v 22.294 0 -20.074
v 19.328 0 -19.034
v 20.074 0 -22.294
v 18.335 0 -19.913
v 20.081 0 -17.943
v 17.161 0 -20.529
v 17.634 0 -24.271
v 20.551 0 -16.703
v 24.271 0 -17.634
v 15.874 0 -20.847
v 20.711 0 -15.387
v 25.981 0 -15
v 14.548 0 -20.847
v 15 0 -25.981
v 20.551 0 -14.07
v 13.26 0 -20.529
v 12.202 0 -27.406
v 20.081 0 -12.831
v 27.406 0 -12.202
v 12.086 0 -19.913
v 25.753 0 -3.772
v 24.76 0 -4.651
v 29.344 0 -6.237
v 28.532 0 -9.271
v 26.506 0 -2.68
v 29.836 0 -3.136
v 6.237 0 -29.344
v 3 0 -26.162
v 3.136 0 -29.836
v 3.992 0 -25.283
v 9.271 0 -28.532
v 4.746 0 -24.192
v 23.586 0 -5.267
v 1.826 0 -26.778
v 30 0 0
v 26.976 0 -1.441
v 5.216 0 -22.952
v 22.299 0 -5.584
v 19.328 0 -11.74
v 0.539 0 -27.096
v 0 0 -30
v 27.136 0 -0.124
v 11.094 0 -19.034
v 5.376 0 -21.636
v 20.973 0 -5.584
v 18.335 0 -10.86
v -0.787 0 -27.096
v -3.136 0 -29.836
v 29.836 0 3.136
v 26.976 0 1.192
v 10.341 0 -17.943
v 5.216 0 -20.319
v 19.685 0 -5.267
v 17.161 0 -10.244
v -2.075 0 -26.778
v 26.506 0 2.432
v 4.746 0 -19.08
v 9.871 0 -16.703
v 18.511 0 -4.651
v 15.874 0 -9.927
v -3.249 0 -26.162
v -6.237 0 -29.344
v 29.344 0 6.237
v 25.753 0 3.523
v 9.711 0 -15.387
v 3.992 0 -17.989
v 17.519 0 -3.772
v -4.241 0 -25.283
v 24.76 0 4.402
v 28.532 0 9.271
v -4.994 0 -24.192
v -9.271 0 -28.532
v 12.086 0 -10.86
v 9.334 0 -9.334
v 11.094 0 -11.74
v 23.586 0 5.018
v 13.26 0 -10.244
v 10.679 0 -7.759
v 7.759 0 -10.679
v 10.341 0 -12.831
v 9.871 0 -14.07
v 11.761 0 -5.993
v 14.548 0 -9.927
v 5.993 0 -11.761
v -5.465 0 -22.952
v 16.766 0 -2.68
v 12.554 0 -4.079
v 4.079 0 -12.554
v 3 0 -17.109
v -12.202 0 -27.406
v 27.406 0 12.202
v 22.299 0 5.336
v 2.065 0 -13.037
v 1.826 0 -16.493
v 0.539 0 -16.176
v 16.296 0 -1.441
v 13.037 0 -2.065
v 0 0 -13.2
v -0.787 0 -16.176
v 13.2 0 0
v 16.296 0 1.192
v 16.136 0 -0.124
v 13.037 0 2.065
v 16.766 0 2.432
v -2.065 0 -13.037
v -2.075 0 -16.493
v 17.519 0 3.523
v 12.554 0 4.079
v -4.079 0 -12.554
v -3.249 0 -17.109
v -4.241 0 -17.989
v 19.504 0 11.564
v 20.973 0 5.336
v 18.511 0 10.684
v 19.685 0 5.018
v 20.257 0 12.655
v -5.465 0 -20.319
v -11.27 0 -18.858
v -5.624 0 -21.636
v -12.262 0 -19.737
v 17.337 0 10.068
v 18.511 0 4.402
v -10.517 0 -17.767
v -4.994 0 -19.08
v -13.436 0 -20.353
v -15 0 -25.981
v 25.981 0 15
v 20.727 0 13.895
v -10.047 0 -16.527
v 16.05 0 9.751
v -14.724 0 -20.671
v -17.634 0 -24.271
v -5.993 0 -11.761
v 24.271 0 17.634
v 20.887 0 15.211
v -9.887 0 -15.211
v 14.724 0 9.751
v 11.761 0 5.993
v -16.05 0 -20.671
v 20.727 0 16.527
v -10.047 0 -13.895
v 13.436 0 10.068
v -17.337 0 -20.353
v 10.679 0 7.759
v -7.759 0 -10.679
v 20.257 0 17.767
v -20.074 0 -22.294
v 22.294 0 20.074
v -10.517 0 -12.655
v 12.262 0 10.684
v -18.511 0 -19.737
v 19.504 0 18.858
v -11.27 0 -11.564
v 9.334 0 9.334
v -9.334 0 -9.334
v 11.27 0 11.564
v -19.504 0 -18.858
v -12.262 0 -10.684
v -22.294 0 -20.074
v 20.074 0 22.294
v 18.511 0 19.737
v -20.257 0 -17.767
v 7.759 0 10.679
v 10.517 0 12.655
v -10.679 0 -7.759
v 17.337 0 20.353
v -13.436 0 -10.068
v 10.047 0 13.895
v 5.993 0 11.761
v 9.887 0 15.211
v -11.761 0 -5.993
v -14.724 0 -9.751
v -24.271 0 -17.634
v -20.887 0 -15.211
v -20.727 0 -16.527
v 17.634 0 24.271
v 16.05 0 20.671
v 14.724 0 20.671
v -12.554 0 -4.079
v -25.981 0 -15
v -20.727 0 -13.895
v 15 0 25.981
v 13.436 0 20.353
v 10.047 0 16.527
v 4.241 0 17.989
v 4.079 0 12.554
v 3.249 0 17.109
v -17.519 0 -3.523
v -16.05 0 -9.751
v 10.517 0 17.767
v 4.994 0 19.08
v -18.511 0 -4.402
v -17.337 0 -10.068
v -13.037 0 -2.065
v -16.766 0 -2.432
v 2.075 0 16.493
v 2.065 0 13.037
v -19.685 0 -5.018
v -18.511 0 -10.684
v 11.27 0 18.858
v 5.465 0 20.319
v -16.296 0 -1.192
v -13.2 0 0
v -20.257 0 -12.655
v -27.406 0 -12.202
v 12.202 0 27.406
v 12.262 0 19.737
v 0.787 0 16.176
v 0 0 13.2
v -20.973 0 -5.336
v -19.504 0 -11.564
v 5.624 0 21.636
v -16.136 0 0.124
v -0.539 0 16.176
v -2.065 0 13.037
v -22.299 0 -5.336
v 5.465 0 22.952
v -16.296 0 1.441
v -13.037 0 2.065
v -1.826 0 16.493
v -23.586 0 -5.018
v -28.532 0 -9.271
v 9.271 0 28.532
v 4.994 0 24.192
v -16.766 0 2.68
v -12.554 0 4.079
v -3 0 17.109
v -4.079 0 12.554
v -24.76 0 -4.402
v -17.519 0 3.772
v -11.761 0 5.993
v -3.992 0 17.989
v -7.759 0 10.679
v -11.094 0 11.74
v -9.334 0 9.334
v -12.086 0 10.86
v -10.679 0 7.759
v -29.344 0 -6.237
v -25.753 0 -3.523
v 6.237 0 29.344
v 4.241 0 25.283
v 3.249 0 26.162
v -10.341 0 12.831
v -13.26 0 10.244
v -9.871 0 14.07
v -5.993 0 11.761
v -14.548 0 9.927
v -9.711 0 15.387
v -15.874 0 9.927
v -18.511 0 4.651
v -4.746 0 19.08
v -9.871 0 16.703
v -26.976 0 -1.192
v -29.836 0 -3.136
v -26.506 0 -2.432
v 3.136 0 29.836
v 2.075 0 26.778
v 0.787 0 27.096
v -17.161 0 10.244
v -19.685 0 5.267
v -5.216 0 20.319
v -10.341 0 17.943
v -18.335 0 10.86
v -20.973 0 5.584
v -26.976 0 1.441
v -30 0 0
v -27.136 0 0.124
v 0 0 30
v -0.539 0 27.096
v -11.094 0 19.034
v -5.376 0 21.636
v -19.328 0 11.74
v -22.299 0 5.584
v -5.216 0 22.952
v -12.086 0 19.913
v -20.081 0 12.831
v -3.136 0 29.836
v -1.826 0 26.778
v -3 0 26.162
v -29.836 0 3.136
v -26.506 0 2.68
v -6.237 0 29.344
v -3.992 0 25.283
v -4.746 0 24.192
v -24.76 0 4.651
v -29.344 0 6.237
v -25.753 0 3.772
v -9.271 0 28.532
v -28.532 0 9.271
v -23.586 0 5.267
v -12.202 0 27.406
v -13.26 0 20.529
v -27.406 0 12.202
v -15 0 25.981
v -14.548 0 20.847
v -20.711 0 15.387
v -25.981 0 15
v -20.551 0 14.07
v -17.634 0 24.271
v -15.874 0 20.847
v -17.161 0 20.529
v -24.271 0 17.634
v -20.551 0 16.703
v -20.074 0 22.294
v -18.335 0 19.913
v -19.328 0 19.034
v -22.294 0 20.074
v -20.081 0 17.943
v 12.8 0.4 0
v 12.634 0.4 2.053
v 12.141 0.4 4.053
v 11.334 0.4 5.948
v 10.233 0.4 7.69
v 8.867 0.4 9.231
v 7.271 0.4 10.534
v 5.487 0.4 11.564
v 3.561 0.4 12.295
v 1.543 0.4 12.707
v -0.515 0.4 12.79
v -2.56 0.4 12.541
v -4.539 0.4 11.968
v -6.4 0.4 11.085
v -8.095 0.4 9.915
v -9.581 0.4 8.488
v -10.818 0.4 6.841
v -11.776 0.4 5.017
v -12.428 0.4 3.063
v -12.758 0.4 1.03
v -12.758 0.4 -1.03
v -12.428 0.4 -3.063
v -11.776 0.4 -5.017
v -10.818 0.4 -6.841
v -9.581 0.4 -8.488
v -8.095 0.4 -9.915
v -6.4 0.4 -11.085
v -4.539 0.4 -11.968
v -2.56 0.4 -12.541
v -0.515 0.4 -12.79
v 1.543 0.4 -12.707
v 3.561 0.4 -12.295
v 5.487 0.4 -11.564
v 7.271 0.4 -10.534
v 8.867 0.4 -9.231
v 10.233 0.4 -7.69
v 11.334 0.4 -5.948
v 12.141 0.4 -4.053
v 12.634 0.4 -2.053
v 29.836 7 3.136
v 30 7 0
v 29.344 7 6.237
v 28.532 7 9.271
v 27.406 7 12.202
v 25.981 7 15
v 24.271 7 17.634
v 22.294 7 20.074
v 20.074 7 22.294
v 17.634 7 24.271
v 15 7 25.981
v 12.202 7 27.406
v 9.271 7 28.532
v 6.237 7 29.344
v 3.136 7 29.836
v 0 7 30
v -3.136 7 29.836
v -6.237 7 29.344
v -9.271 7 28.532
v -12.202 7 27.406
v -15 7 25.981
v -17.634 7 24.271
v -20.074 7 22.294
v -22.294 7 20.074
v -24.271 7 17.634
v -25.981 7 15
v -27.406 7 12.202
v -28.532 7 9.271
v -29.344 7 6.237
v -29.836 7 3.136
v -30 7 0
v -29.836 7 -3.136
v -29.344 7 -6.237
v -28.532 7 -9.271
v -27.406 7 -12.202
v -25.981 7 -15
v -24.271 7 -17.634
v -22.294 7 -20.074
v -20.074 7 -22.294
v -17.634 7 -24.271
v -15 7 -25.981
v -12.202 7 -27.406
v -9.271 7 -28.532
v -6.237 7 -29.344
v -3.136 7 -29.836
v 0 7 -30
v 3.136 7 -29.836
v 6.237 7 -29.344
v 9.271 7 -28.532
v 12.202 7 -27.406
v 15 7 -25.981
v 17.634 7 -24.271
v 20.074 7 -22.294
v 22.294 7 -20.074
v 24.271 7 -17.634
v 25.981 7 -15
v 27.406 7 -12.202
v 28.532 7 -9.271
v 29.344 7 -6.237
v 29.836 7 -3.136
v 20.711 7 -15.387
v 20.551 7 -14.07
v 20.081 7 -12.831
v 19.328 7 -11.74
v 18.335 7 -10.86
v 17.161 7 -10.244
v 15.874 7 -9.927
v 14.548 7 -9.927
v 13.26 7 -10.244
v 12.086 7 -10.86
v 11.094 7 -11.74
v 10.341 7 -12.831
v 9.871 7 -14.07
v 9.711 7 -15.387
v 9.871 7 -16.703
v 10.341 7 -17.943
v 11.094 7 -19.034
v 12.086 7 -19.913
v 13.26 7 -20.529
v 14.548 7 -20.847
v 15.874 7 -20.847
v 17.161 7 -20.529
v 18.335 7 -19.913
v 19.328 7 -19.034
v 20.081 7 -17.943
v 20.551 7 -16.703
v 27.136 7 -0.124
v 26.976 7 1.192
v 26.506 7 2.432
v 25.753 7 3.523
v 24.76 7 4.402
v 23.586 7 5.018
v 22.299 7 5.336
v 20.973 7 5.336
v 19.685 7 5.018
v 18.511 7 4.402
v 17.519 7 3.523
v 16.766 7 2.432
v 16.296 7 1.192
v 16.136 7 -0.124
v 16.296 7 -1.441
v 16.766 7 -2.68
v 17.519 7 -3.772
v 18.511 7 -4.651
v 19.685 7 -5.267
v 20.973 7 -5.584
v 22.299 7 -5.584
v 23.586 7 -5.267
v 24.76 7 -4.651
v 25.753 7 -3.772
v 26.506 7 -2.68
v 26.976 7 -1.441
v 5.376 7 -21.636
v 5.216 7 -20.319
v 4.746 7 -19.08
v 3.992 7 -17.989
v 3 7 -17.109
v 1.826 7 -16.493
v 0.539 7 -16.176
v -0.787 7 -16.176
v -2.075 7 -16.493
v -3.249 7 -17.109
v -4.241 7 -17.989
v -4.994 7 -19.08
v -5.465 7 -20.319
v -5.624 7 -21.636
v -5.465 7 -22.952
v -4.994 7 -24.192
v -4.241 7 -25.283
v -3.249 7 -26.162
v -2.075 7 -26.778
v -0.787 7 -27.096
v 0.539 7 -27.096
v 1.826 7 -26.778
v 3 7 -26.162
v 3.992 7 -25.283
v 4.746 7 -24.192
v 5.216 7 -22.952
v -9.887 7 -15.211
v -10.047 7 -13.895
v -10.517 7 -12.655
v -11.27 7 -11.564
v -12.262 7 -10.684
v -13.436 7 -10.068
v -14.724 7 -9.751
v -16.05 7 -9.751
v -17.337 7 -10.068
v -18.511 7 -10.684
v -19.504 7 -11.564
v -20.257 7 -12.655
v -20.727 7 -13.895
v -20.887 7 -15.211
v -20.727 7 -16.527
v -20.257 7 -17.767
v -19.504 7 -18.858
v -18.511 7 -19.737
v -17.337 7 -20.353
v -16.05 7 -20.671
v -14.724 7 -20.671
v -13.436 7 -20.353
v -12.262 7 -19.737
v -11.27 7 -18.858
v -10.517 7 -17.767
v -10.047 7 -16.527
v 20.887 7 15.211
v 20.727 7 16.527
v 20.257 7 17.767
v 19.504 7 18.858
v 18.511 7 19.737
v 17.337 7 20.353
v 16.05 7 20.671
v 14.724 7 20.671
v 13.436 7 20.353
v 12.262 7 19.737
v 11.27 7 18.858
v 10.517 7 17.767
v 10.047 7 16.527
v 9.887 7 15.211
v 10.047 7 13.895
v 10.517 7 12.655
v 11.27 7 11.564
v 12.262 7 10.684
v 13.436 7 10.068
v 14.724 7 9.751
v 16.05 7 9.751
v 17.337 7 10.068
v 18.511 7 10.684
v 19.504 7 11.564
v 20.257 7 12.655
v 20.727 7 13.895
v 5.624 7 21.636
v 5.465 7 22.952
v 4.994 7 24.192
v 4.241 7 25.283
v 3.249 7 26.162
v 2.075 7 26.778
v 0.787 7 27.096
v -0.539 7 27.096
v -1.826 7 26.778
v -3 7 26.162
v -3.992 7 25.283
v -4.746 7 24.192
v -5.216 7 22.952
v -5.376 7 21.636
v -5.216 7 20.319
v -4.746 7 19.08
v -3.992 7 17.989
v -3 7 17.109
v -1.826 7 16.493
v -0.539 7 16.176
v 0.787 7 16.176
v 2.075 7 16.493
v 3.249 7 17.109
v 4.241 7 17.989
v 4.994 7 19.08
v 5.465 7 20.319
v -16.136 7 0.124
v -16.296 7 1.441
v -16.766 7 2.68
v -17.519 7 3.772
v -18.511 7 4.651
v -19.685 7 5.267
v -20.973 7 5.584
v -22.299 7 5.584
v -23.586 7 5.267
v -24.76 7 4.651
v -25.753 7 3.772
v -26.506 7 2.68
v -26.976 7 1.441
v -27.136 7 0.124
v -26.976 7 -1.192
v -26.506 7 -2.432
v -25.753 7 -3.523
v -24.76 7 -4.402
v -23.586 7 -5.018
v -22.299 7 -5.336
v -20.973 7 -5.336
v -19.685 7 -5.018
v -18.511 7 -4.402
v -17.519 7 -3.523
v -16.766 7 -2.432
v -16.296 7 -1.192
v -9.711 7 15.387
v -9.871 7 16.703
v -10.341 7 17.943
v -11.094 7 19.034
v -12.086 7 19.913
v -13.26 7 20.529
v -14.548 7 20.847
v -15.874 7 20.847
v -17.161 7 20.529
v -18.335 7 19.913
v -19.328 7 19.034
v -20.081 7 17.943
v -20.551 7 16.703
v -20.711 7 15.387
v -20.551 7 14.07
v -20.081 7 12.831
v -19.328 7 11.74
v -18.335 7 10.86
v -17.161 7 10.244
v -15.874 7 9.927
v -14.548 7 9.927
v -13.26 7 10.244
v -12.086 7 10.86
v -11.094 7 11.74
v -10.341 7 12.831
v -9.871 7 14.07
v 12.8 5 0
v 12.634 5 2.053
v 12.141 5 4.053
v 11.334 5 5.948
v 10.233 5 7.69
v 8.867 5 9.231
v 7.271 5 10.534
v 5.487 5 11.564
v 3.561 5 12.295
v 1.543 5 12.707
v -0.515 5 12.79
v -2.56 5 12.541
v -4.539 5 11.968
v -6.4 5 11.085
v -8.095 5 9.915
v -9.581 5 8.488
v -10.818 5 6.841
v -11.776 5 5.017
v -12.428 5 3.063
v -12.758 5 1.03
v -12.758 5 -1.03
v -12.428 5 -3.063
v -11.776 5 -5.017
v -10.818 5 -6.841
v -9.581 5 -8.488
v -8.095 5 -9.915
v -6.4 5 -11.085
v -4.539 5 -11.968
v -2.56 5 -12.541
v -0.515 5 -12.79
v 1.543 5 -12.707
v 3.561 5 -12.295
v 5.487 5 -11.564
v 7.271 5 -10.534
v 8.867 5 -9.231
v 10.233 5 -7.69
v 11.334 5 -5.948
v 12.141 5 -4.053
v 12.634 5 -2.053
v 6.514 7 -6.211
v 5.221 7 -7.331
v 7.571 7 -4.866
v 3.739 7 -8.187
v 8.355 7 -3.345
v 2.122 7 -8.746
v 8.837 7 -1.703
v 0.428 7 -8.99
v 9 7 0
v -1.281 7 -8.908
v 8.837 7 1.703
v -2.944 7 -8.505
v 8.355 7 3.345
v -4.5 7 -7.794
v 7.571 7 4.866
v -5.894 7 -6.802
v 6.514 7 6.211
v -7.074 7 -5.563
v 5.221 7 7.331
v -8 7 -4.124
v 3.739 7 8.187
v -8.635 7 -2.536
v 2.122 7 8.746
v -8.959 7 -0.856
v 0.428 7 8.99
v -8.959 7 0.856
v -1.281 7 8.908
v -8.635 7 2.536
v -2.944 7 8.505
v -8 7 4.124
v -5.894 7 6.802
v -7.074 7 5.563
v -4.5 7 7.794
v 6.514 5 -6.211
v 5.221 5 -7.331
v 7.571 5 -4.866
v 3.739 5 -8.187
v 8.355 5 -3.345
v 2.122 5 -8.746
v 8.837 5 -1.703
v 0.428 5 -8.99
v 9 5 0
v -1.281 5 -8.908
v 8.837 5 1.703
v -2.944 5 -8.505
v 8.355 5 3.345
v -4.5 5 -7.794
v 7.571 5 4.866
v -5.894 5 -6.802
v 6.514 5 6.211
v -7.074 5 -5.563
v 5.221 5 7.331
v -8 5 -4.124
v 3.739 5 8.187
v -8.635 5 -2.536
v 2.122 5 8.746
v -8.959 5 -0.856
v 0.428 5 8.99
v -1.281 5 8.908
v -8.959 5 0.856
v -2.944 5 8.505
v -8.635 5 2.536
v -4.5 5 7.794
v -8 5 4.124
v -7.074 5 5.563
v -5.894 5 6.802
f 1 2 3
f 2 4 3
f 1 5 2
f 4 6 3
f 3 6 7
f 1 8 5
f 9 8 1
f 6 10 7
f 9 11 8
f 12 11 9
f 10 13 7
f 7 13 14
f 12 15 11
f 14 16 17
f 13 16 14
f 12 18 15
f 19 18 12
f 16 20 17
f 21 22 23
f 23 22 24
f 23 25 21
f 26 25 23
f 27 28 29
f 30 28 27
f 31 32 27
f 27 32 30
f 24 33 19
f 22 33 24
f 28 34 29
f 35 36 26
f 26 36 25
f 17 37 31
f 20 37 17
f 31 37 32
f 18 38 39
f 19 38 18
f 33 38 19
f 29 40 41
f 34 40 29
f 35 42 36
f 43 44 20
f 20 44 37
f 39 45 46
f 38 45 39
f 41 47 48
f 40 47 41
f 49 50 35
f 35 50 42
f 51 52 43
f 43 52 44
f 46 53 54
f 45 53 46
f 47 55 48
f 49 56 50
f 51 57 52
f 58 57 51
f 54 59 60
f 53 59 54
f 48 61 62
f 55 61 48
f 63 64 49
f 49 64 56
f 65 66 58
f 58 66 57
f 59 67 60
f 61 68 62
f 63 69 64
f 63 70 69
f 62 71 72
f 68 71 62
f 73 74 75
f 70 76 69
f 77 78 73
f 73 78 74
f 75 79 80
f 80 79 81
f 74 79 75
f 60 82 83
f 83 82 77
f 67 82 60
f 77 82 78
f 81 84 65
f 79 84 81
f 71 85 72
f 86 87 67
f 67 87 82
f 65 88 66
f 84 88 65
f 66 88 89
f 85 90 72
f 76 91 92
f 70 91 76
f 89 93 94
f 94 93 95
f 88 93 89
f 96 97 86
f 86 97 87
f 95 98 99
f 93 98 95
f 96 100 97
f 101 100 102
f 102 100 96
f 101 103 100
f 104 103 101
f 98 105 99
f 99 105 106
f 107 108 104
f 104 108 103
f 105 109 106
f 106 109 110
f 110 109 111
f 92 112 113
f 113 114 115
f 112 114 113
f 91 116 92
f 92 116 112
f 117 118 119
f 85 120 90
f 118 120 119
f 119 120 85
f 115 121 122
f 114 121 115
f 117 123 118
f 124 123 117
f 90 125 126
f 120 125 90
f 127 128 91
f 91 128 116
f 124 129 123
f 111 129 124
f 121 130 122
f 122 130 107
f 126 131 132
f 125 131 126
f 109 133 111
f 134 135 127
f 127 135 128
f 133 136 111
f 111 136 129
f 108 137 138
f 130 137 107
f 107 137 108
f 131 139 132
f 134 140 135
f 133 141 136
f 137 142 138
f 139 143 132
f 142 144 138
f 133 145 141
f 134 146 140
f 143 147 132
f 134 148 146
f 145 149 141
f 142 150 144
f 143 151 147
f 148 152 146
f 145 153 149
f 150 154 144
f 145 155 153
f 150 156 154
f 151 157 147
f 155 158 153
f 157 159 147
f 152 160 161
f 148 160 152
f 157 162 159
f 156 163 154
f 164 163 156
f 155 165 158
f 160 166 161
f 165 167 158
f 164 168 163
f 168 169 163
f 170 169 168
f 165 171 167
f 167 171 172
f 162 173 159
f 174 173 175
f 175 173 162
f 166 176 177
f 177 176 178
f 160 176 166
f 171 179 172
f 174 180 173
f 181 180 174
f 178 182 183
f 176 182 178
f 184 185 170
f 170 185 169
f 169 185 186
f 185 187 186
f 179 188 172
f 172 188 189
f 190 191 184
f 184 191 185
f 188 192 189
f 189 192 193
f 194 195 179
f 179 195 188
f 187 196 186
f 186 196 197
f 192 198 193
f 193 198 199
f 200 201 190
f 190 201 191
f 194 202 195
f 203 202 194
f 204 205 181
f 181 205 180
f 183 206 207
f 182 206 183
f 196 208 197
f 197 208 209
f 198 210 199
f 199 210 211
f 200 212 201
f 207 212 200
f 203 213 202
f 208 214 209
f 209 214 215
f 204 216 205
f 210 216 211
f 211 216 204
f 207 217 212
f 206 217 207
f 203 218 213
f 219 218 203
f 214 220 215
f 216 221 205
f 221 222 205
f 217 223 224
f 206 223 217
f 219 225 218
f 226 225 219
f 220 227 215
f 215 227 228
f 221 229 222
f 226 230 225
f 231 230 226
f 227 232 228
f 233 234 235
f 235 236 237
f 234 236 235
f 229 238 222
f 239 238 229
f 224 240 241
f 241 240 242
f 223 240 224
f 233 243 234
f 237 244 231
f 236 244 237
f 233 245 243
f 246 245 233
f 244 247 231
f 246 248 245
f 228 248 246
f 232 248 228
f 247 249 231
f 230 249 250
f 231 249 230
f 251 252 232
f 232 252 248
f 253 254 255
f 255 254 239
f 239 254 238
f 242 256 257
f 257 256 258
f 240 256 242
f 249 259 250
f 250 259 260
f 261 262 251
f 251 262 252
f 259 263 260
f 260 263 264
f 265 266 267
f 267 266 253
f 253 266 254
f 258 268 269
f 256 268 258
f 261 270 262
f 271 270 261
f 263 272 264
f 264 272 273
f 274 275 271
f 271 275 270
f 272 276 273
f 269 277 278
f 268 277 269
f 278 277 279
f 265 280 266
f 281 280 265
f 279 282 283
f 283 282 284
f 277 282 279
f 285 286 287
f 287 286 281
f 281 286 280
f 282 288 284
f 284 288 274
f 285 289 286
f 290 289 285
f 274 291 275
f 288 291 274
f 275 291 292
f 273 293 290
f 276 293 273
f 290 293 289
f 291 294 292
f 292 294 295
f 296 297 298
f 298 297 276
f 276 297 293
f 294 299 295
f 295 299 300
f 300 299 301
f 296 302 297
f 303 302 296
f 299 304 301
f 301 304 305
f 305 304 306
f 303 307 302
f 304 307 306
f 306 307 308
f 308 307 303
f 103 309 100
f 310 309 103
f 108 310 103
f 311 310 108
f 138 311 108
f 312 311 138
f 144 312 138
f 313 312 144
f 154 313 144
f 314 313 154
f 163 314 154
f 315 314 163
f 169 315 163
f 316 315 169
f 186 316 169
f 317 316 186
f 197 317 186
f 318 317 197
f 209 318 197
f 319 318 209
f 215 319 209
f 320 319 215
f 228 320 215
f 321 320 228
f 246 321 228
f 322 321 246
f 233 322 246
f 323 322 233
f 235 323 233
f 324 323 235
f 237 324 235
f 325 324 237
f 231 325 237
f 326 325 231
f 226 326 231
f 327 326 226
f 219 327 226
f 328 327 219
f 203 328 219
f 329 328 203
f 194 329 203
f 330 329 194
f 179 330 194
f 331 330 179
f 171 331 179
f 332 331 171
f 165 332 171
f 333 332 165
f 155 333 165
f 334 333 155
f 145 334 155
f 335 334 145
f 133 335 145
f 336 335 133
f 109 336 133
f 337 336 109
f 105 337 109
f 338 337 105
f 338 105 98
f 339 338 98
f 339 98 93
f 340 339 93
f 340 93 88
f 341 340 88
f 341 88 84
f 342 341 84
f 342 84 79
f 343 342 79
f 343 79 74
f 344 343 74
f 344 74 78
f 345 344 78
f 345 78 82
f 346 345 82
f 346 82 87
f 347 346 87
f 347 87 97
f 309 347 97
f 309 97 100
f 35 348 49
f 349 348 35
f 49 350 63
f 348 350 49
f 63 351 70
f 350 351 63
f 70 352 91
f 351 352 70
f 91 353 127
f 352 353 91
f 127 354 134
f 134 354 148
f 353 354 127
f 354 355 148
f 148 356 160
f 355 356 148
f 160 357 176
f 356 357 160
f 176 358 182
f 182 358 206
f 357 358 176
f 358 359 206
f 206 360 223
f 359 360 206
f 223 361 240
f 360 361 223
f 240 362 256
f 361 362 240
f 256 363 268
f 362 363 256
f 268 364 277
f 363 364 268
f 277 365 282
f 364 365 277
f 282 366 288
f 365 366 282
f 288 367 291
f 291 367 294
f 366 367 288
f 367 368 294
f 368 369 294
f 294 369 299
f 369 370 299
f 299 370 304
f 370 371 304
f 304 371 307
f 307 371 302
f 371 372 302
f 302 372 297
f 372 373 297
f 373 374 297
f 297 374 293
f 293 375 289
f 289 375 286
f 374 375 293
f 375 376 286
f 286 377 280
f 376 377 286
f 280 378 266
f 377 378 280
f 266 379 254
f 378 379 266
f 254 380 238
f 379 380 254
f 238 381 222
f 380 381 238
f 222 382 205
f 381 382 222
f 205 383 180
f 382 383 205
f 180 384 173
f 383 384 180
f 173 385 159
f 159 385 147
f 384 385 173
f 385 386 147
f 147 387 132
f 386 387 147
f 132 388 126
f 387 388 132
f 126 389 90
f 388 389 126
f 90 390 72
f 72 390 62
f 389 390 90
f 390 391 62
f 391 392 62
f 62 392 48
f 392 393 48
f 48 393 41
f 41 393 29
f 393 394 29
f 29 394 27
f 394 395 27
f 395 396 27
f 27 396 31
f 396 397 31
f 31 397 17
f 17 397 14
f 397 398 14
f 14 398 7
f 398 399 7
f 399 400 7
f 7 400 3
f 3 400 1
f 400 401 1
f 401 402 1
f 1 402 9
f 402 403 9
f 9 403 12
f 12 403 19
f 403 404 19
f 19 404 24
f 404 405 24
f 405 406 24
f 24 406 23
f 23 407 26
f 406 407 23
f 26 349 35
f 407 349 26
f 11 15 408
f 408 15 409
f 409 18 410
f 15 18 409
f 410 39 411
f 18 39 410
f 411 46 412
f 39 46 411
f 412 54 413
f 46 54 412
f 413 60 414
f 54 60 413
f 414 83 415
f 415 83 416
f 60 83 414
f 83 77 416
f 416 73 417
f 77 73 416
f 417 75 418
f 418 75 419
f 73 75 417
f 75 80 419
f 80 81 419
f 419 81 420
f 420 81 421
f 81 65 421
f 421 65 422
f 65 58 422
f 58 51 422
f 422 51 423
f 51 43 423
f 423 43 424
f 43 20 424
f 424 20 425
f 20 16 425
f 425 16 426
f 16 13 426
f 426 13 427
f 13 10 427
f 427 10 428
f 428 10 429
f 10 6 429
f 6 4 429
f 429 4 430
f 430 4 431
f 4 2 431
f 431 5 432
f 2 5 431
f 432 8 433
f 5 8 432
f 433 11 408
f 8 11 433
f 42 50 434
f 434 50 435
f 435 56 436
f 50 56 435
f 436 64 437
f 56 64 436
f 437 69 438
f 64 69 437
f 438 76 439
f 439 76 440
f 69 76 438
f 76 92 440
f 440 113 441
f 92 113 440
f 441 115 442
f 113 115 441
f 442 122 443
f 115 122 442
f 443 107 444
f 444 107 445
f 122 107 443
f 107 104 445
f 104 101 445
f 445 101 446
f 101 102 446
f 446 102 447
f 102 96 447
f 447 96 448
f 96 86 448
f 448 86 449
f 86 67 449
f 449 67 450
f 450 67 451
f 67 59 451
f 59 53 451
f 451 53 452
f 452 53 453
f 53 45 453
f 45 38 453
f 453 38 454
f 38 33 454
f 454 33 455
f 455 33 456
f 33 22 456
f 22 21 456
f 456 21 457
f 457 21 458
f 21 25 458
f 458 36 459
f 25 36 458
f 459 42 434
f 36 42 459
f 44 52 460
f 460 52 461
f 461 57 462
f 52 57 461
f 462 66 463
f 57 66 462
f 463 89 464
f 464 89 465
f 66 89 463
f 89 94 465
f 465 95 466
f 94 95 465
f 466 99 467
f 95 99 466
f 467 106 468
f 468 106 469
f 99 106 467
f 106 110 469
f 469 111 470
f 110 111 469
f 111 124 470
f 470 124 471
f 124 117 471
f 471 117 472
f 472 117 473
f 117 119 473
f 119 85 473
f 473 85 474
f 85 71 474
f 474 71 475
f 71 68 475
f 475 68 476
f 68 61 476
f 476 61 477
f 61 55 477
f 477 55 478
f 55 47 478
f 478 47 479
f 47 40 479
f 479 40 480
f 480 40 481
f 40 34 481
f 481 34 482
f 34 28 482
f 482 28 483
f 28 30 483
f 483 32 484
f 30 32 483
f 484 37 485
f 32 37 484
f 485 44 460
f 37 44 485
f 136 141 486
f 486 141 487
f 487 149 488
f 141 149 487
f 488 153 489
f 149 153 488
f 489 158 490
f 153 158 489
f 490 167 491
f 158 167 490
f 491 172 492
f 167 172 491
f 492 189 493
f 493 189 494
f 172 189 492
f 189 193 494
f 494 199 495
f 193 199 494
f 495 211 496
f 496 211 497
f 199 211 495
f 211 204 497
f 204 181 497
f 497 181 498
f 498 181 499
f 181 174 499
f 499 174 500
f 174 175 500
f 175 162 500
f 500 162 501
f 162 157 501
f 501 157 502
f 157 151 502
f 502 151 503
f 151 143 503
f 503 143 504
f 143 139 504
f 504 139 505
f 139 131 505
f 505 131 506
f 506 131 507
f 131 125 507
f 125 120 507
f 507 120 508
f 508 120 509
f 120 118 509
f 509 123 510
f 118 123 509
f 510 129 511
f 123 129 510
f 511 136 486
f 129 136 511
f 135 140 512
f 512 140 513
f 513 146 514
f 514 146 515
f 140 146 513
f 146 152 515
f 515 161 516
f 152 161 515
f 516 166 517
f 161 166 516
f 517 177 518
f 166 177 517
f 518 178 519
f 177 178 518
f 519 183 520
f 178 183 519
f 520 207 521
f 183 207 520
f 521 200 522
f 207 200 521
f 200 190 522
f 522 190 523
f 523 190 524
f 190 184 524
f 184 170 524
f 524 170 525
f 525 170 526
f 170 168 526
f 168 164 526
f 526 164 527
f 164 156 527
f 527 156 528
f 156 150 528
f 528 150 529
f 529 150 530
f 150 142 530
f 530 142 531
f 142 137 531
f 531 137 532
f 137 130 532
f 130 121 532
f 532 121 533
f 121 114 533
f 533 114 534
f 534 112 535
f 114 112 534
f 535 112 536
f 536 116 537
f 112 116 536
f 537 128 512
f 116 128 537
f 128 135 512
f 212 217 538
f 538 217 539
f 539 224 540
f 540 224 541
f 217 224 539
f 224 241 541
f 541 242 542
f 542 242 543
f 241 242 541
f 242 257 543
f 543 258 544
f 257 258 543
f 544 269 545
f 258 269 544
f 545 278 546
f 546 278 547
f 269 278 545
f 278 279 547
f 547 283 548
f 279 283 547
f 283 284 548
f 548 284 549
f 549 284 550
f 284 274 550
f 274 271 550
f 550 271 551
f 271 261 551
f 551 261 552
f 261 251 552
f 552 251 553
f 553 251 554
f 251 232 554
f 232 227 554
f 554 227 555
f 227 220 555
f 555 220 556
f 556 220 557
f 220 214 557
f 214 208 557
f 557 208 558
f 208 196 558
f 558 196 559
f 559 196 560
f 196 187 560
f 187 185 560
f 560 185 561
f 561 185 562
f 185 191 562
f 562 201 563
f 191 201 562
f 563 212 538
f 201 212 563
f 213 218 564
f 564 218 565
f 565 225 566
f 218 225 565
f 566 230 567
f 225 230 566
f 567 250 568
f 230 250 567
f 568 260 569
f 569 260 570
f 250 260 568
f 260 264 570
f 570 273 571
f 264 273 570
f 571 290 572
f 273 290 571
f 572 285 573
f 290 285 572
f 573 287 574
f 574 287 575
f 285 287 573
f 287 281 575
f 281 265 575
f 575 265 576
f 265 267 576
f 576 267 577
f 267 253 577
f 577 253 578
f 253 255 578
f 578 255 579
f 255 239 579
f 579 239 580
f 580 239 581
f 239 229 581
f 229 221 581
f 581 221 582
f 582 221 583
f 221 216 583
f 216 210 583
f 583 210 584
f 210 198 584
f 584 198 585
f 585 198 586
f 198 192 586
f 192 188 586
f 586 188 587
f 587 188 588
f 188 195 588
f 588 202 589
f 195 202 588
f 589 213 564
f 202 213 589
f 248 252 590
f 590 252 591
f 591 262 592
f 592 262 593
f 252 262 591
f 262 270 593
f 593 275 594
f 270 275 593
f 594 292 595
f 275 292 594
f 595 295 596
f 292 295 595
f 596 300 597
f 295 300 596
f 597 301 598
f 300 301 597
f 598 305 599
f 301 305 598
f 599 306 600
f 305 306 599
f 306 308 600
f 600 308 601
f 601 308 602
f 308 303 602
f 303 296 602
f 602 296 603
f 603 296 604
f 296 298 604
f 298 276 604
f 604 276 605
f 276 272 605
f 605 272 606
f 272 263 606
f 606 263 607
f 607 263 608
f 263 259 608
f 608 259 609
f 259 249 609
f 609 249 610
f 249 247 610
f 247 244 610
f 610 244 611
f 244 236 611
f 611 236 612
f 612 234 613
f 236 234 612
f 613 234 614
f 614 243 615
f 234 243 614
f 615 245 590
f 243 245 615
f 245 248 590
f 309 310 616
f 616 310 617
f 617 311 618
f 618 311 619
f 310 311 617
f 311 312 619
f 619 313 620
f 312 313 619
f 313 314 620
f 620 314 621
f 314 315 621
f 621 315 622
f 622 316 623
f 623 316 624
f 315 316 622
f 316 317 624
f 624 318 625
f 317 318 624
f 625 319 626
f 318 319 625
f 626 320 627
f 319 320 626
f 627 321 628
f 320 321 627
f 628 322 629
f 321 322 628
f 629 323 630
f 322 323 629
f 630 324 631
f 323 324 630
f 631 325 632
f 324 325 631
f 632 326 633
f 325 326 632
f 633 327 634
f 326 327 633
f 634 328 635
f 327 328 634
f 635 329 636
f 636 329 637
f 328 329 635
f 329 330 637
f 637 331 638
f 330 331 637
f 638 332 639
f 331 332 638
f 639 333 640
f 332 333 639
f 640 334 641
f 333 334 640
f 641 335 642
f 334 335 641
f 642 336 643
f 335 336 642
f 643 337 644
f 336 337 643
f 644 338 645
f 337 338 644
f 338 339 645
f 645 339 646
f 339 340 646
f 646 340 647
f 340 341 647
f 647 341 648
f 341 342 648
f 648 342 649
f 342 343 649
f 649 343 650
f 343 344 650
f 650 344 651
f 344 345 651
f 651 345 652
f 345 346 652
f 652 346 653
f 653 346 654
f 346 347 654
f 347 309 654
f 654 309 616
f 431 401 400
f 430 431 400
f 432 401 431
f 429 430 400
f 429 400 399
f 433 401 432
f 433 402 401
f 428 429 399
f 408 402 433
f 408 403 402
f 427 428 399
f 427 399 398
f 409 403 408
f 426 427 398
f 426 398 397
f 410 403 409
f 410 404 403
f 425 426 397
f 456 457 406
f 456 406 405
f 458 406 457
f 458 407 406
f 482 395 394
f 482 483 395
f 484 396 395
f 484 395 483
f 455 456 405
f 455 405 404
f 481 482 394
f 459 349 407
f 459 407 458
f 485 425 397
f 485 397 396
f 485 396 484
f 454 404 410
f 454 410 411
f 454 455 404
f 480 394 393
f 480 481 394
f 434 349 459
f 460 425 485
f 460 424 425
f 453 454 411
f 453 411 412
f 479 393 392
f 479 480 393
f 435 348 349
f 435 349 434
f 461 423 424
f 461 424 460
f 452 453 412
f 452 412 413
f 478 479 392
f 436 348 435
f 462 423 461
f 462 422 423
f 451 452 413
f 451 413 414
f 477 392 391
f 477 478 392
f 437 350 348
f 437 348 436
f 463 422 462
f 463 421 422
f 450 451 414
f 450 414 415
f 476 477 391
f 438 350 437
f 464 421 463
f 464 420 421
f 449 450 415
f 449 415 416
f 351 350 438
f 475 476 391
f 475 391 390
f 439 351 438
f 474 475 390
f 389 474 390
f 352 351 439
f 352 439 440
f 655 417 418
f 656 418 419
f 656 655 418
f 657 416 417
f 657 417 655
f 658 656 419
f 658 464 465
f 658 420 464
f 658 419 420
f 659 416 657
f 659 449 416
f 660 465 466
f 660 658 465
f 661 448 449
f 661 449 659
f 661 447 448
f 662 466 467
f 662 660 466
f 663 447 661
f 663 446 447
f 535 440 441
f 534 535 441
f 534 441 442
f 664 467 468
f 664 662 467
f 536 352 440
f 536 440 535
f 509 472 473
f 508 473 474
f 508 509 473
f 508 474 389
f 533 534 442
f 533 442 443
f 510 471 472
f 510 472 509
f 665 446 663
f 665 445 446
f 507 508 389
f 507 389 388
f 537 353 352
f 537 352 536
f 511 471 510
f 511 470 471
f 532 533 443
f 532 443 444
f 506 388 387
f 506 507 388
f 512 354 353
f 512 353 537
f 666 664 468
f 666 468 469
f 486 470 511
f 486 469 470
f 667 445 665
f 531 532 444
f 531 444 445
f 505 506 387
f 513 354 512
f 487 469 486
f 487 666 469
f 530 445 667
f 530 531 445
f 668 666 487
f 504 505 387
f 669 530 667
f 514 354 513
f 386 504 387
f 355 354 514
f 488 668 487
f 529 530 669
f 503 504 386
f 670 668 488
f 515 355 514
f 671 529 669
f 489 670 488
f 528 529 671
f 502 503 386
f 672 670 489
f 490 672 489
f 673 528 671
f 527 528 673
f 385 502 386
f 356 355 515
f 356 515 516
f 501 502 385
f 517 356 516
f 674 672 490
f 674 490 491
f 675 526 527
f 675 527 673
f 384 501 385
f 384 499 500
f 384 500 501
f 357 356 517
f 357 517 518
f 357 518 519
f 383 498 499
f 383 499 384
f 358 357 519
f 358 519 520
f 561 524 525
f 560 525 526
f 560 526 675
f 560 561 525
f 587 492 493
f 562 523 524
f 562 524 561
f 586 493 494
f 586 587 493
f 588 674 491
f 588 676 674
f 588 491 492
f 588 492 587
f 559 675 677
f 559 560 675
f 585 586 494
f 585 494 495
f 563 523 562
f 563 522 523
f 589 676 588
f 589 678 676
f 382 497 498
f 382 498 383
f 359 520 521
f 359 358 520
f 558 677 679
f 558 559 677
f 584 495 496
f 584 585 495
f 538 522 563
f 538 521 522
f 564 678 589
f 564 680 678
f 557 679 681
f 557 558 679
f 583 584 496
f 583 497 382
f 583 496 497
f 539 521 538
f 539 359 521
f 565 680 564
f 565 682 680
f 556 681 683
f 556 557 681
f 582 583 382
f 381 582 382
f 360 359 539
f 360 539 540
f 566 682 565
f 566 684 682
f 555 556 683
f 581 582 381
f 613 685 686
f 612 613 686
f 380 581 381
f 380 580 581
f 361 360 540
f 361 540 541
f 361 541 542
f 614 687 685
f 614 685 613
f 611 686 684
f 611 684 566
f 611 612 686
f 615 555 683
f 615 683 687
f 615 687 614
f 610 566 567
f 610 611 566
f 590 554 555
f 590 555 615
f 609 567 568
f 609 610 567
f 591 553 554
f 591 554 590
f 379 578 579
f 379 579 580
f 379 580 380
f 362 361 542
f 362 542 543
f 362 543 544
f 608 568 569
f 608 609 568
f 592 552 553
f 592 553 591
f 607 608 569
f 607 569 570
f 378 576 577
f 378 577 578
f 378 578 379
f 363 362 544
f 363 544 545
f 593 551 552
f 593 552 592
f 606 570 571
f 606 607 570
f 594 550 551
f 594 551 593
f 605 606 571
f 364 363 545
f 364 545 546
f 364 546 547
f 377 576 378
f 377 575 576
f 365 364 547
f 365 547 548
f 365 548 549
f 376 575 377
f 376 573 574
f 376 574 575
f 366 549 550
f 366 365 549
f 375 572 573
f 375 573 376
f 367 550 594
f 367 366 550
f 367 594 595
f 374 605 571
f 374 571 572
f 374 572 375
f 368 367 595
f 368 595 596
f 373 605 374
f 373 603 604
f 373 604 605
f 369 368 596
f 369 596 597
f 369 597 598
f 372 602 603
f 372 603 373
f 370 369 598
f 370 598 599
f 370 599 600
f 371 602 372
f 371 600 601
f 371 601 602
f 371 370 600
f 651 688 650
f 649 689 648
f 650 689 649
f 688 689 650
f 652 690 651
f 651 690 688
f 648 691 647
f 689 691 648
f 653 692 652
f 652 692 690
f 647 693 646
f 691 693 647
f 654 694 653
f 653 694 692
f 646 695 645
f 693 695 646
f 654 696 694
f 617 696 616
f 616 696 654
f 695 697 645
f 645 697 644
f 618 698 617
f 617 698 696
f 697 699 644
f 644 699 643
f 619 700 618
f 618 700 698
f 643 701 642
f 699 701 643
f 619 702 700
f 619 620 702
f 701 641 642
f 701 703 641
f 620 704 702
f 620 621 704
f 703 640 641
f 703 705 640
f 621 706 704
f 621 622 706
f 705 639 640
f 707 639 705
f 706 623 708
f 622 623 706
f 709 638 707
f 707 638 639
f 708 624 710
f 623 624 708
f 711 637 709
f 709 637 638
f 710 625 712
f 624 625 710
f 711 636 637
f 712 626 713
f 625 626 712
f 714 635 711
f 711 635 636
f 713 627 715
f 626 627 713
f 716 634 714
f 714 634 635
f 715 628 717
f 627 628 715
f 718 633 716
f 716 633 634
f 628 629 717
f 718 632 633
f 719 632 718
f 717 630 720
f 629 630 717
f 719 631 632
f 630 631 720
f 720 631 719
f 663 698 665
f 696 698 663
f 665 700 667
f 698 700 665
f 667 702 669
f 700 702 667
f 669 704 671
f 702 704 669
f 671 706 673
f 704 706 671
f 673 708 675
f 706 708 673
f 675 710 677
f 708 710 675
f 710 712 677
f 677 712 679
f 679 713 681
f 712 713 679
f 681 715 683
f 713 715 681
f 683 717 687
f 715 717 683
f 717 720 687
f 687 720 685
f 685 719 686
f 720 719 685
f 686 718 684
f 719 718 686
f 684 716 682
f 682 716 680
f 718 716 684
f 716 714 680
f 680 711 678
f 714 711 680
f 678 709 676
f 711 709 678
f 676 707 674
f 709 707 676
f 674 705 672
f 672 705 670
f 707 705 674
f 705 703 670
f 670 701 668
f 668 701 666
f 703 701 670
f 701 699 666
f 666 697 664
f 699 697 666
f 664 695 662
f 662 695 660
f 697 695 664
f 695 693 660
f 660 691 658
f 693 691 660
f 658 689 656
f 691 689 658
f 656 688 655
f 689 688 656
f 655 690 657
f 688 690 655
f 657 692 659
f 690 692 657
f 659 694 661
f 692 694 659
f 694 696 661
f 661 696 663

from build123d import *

# Parameters (mm, degrees)
SKETCH001_R  = 5.5
POCKET_DEPTH = 7.001
CHAMFER_SIZE = 0.4


with BuildPart() as part:
    # Sketch → Revolution (revolve)
    with BuildSketch(Plane.XY):
        Polygon((30, 0), (30, 7), (9, 7), (9, 5), (12.8, 5), (12.8, 0), align=None)
    revolve(axis=Axis((0, 0, 0), (0, 1, 0)))

    # Sketch001 (on Face6 of Revolution) → Pocket (cut, through all)
    with BuildSketch(Plane.XZ):
        with Locations((0.124373, 21.635731)):
            Circle(SKETCH001_R)
        with Locations((15.386717, 15.210827)):
            Circle(SKETCH001_R)
        with Locations((21.635731, -0.124373)):
            Circle(SKETCH001_R)
        with Locations((15.210827, -15.386717)):
            Circle(SKETCH001_R)
        with Locations((-0.124373, -21.635731)):
            Circle(SKETCH001_R)
        with Locations((-15.386717, -15.210827)):
            Circle(SKETCH001_R)
        with Locations((-21.635731, 0.124373)):
            Circle(SKETCH001_R)
        with Locations((-15.210827, 15.386717)):
            Circle(SKETCH001_R)
    extrude(amount=-POCKET_DEPTH, mode=Mode.SUBTRACT)

    # Chamfer
    chamfer_edges = [part.edges().sort_by_distance(p)[0] for p in [
        (-12.8, 0, 0),
    ]]
    chamfer(chamfer_edges, length=CHAMFER_SIZE)


solid = part.part
